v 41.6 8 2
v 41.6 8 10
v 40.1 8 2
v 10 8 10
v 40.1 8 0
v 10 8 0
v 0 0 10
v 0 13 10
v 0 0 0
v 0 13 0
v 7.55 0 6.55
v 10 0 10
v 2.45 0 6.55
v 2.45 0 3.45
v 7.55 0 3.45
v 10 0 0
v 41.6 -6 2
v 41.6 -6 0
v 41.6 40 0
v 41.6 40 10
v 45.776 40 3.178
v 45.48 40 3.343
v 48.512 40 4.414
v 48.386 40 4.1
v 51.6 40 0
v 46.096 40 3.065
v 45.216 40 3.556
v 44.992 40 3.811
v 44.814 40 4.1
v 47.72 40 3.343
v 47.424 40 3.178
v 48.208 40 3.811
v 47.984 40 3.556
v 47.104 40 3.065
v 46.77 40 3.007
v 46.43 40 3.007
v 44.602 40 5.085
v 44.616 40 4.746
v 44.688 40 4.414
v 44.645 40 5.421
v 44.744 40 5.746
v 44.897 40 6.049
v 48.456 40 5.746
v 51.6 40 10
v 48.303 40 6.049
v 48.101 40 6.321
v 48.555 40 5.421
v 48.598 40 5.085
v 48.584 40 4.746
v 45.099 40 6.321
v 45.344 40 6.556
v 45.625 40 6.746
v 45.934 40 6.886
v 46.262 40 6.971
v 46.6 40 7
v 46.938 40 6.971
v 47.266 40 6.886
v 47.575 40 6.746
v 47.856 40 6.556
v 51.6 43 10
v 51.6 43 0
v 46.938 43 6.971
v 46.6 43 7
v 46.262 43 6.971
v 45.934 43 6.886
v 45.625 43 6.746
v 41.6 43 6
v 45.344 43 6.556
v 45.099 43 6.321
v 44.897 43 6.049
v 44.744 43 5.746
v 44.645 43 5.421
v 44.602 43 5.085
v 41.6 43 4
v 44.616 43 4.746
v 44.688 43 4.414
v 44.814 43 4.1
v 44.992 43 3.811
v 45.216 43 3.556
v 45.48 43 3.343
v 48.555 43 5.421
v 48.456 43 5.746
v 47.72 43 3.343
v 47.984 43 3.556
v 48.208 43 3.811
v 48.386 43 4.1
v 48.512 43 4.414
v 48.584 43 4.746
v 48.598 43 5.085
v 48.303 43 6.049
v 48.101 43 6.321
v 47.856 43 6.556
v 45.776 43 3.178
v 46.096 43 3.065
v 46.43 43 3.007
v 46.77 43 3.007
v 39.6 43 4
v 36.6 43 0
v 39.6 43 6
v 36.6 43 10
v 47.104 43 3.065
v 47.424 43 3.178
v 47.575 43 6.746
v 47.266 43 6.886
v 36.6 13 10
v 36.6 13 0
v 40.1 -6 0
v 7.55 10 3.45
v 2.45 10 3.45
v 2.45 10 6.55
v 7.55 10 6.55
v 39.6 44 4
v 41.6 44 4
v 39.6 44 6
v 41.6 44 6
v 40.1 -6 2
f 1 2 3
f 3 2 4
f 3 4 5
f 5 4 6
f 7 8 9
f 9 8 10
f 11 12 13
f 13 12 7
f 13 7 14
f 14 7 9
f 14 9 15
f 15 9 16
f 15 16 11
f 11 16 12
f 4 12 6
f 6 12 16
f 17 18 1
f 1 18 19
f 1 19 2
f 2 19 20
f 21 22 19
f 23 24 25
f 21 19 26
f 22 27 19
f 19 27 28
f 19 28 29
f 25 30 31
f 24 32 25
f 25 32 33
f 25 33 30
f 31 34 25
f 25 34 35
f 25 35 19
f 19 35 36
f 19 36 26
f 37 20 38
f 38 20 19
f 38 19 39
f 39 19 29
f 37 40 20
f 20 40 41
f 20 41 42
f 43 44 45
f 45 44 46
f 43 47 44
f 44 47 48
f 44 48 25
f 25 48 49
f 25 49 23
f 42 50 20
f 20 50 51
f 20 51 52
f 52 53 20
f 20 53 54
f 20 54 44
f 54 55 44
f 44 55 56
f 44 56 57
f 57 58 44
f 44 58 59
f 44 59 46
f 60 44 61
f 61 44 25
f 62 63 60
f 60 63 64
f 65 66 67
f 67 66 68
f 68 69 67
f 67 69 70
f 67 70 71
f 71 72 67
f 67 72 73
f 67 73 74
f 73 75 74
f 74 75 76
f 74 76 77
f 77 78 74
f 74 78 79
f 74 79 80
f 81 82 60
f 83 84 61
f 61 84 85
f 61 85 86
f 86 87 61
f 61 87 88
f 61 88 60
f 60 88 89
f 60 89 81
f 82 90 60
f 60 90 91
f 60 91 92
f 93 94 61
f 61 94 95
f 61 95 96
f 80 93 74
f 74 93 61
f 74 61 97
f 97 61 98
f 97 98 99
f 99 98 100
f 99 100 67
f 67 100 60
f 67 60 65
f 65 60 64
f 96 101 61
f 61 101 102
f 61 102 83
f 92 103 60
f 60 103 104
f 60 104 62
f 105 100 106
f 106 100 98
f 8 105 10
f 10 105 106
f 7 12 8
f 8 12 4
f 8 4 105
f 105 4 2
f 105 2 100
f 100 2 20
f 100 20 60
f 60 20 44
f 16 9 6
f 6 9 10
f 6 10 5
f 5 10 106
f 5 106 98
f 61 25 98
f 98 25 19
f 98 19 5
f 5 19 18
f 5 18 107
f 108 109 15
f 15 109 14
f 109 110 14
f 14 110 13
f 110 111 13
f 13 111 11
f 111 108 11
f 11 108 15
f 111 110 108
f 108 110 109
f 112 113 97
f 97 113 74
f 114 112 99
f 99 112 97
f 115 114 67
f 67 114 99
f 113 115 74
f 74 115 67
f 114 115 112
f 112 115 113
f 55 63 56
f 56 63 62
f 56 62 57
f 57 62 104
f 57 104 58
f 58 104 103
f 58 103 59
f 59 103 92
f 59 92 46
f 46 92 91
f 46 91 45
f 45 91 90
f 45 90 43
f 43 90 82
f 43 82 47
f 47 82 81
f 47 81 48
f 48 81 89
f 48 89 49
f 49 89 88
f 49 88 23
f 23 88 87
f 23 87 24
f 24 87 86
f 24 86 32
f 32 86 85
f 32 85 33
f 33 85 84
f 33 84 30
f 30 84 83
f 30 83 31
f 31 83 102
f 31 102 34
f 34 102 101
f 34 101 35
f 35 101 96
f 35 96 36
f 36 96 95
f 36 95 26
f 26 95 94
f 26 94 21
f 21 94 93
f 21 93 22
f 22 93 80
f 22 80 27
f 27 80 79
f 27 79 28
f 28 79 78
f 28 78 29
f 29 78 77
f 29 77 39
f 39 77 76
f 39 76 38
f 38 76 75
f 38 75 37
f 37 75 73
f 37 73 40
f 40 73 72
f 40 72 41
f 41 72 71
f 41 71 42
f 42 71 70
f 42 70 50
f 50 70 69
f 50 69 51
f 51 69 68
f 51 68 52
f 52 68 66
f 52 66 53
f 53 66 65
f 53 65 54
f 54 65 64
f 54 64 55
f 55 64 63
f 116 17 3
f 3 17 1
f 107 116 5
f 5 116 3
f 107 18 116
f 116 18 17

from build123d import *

# Parameters (mm, degrees)
BOSS_EXTRUDE1_DEPTH = 10
SKETCH2_W           = 5.1
SKETCH2_H           = 3.1
CUT_EXTRUDE1_DEPTH  = 10
SKETCH3_W           = 2
SKETCH3_H           = 2
BOSS_EXTRUDE2_DEPTH = 1
CUT_EXTRUDE4_REACH  = 69.908
SKETCH11_R          = 2
SKETCH12_W          = 1.5
SKETCH12_H          = 2
BOSS_EXTRUDE4_DEPTH = 14


with BuildPart() as part:
    # Sketch1 → Boss-Extrude1 (new body)
    with BuildSketch(Plane.XY):
        Polygon((10, 13), (36.6, 13), (36.6, 43), (51.6, 43), (51.6, 40), (41.6, 40), (41.6, 8), (10, 8), (10, 0), (0, 0), (0, 13), align=None)
    extrude(amount=BOSS_EXTRUDE1_DEPTH)

    # Sketch2 → Cut-Extrude1 (cut)
    with BuildSketch(Plane.XZ):
        with Locations((5, 5)):
            Rectangle(SKETCH2_W, SKETCH2_H)
    extrude(amount=-CUT_EXTRUDE1_DEPTH, mode=Mode.SUBTRACT)

    # Sketch3 → Boss-Extrude2 (add)
    with BuildSketch(Plane(origin=(0, 43, 0), x_dir=(1, 0, 0), z_dir=(0, 1, 0))):
        with Locations((40.6, -5)):
            Rectangle(SKETCH3_W, SKETCH3_H)
    extrude(amount=BOSS_EXTRUDE2_DEPTH)

    # Sketch11 → Cut-Extrude4 (cut, up to next)
    with BuildSketch(Plane(origin=(0, 43, 0), x_dir=(1, 0, 0), z_dir=(0, 1, 0)), mode=Mode.PRIVATE) as cut_extrude4_sk1:
        with Locations(Location((46.6, -5, 0), (0, 0, 270))):
            Circle(SKETCH11_R)
    cut_extrude4_tool1 = extrude(cut_extrude4_sk1.sketch, amount=-CUT_EXTRUDE4_REACH, mode=Mode.PRIVATE) & part.part
    add(cut_extrude4_tool1.solids().sort_by_distance((46.6, 43, 5))[0], mode=Mode.SUBTRACT)

    # Sketch12 → Boss-Extrude4 (add)
    with BuildSketch(Plane.XZ.offset(-8)):
        with Locations((40.85, 1)):
            Rectangle(SKETCH12_W, SKETCH12_H)
    extrude(amount=BOSS_EXTRUDE4_DEPTH)


solid = part.part
